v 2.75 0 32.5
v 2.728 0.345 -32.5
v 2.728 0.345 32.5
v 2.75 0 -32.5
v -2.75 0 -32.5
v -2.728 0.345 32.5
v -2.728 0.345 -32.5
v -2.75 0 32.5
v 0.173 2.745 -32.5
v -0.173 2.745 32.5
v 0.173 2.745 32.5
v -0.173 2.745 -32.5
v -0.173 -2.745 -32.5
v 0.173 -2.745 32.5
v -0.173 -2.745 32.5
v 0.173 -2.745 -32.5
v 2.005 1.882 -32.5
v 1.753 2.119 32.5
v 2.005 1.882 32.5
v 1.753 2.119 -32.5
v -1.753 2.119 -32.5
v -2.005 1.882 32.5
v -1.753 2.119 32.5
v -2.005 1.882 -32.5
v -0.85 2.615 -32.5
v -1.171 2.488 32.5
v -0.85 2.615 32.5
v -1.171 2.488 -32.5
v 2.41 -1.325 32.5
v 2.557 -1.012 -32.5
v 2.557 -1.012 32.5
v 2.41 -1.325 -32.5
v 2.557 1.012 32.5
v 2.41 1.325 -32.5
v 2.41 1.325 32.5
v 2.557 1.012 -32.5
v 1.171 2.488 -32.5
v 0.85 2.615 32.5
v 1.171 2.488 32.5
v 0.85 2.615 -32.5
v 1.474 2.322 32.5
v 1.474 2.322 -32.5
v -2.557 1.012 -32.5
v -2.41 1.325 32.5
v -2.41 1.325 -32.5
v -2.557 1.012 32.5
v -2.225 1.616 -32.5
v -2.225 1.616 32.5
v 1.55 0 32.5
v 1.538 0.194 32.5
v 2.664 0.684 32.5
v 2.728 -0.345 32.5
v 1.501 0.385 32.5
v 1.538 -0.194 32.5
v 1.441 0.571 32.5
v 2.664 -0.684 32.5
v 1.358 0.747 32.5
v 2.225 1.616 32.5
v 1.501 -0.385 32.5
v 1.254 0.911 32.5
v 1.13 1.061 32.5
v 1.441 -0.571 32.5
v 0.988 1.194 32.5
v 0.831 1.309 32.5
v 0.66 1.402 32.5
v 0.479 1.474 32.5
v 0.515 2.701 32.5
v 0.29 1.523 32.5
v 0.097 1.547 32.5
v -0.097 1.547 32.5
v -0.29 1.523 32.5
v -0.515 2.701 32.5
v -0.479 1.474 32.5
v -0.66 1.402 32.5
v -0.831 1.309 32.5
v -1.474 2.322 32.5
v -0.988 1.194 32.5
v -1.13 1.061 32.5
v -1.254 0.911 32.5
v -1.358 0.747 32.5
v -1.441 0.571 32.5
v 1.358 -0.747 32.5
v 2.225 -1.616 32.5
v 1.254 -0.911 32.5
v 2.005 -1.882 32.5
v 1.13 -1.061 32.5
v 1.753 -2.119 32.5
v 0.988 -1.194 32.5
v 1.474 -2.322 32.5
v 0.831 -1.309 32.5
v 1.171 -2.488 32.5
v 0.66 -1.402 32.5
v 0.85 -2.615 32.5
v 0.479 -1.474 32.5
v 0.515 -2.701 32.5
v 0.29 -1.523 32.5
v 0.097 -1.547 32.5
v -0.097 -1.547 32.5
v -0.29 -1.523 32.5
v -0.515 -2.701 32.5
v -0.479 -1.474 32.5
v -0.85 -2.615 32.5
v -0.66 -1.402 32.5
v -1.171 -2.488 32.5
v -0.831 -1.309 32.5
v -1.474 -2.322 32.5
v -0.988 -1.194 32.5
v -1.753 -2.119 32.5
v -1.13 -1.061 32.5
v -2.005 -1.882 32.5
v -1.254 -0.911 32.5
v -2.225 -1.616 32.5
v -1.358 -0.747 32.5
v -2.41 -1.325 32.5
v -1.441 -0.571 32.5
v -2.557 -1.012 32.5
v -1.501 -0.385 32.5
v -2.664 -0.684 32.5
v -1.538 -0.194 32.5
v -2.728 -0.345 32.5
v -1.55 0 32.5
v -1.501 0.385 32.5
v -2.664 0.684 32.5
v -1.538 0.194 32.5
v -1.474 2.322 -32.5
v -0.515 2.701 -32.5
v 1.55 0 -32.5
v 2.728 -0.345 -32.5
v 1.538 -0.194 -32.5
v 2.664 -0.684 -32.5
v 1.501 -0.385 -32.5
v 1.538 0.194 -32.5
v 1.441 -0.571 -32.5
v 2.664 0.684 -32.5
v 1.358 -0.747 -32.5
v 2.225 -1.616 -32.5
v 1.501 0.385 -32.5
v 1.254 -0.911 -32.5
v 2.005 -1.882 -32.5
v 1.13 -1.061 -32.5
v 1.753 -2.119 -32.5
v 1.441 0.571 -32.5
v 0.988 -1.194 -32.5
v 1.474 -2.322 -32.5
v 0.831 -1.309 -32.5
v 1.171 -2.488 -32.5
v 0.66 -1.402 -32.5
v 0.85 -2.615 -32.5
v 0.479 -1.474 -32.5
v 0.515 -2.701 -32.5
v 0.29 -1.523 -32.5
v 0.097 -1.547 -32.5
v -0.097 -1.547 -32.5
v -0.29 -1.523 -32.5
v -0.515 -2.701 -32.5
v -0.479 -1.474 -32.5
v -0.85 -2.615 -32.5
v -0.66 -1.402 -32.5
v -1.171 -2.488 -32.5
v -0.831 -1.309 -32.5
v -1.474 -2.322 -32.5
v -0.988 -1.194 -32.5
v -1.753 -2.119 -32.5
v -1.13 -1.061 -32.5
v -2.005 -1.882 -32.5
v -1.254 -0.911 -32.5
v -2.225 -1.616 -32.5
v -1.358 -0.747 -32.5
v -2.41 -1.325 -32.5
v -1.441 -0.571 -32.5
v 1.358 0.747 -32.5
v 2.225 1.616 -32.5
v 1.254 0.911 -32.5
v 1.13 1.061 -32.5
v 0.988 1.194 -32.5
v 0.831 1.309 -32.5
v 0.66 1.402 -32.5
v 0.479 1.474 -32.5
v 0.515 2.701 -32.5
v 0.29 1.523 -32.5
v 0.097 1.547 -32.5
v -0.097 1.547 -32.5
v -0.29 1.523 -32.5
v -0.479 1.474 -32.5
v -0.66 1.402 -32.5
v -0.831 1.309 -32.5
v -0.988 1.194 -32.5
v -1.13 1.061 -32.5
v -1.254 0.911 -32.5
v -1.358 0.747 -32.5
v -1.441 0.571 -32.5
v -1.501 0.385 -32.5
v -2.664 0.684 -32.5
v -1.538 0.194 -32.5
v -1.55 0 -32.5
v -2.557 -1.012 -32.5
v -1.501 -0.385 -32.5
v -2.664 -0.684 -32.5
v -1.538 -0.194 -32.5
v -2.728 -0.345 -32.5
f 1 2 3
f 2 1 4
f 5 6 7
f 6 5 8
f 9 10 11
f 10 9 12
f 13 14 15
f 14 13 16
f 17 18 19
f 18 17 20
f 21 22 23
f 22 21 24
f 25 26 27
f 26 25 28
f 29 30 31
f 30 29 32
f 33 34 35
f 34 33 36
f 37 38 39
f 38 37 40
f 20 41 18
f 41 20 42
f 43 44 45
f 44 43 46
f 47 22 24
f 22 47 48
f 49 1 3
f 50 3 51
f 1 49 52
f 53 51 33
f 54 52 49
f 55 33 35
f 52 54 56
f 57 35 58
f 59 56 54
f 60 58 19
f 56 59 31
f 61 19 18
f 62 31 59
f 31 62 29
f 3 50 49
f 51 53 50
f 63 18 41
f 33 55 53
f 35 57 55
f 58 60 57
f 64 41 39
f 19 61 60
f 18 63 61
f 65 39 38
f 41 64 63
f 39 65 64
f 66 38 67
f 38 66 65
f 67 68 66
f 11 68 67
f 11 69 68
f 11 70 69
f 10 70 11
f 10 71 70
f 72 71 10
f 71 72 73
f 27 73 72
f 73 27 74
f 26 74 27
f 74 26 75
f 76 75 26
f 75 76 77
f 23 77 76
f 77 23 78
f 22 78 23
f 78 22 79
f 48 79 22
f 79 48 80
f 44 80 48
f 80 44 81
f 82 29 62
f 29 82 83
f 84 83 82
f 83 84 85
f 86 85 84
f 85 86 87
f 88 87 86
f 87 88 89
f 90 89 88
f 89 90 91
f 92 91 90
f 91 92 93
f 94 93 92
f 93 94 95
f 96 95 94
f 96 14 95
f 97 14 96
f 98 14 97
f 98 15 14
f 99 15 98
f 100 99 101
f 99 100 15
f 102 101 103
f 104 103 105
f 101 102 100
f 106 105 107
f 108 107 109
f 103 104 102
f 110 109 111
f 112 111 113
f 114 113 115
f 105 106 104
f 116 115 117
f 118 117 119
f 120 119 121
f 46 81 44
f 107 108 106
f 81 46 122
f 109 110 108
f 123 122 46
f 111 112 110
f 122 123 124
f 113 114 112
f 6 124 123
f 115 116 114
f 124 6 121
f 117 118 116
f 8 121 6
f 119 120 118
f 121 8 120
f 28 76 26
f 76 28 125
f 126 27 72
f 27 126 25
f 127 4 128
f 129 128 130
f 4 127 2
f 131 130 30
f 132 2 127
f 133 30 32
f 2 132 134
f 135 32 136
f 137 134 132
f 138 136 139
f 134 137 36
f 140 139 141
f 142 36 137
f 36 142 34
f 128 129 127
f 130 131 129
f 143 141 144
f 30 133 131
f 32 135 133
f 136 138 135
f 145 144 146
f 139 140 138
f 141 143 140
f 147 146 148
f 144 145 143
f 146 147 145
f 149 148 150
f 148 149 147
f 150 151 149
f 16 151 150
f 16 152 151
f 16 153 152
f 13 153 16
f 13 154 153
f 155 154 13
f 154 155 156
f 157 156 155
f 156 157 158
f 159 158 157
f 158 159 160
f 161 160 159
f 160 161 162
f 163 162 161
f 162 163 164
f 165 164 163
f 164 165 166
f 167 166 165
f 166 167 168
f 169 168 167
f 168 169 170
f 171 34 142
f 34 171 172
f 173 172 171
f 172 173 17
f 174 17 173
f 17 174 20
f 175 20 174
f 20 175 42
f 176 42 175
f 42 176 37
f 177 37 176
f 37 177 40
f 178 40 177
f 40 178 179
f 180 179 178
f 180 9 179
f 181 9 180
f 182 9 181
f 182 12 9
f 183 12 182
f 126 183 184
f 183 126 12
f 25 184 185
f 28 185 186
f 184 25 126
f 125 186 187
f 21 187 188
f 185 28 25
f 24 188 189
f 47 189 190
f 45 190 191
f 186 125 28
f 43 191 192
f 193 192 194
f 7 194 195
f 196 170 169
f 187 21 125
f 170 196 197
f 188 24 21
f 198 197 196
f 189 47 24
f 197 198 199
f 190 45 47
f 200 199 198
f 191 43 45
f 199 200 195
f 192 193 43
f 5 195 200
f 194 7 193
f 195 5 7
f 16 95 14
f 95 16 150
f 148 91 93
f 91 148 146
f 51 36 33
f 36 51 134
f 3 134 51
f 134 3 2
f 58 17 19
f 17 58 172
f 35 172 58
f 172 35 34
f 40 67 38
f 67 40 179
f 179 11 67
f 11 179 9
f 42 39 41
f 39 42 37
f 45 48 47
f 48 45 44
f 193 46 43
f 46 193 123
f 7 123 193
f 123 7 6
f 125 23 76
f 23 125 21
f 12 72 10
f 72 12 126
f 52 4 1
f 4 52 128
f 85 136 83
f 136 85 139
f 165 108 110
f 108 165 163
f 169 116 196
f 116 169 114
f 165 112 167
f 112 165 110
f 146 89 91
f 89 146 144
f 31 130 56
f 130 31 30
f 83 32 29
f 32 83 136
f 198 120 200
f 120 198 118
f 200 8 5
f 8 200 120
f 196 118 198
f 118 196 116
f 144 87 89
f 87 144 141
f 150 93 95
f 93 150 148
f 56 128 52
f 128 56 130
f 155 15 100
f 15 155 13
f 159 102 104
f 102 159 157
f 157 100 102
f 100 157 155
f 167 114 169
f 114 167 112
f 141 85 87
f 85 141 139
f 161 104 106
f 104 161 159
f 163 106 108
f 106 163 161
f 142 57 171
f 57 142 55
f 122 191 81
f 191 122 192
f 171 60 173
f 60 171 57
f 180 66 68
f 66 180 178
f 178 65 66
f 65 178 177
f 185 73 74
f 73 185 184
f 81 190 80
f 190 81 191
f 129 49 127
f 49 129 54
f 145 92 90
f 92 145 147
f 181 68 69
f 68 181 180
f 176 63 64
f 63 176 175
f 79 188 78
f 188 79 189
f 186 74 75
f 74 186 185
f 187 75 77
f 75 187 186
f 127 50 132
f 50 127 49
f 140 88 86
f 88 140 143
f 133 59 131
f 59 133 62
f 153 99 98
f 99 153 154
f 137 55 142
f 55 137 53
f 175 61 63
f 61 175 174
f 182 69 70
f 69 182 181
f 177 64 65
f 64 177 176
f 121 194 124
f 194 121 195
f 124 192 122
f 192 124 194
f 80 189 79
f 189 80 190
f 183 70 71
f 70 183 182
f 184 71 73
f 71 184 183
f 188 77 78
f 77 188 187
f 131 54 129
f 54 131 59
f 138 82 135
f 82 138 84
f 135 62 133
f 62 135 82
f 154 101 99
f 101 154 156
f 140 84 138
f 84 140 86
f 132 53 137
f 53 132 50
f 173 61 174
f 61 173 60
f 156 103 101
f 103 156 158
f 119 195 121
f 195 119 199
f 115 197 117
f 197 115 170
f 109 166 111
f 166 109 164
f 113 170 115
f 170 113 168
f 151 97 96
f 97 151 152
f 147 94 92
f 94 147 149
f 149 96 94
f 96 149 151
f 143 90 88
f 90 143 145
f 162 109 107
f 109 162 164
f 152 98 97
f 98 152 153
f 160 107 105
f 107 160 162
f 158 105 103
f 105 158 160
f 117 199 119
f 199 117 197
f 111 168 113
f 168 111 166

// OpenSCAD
$fn = 50;


difference() {
	union() {
		translate(v = [0, 0, -32.5000000000]) {
			cylinder(h = 65, r = 2.7500000000);
		}
	}
	union() {
		translate(v = [0, 0, -100.0000000000]) {
			cylinder(h = 200, r = 1.5500000000);
		}
	}
}
